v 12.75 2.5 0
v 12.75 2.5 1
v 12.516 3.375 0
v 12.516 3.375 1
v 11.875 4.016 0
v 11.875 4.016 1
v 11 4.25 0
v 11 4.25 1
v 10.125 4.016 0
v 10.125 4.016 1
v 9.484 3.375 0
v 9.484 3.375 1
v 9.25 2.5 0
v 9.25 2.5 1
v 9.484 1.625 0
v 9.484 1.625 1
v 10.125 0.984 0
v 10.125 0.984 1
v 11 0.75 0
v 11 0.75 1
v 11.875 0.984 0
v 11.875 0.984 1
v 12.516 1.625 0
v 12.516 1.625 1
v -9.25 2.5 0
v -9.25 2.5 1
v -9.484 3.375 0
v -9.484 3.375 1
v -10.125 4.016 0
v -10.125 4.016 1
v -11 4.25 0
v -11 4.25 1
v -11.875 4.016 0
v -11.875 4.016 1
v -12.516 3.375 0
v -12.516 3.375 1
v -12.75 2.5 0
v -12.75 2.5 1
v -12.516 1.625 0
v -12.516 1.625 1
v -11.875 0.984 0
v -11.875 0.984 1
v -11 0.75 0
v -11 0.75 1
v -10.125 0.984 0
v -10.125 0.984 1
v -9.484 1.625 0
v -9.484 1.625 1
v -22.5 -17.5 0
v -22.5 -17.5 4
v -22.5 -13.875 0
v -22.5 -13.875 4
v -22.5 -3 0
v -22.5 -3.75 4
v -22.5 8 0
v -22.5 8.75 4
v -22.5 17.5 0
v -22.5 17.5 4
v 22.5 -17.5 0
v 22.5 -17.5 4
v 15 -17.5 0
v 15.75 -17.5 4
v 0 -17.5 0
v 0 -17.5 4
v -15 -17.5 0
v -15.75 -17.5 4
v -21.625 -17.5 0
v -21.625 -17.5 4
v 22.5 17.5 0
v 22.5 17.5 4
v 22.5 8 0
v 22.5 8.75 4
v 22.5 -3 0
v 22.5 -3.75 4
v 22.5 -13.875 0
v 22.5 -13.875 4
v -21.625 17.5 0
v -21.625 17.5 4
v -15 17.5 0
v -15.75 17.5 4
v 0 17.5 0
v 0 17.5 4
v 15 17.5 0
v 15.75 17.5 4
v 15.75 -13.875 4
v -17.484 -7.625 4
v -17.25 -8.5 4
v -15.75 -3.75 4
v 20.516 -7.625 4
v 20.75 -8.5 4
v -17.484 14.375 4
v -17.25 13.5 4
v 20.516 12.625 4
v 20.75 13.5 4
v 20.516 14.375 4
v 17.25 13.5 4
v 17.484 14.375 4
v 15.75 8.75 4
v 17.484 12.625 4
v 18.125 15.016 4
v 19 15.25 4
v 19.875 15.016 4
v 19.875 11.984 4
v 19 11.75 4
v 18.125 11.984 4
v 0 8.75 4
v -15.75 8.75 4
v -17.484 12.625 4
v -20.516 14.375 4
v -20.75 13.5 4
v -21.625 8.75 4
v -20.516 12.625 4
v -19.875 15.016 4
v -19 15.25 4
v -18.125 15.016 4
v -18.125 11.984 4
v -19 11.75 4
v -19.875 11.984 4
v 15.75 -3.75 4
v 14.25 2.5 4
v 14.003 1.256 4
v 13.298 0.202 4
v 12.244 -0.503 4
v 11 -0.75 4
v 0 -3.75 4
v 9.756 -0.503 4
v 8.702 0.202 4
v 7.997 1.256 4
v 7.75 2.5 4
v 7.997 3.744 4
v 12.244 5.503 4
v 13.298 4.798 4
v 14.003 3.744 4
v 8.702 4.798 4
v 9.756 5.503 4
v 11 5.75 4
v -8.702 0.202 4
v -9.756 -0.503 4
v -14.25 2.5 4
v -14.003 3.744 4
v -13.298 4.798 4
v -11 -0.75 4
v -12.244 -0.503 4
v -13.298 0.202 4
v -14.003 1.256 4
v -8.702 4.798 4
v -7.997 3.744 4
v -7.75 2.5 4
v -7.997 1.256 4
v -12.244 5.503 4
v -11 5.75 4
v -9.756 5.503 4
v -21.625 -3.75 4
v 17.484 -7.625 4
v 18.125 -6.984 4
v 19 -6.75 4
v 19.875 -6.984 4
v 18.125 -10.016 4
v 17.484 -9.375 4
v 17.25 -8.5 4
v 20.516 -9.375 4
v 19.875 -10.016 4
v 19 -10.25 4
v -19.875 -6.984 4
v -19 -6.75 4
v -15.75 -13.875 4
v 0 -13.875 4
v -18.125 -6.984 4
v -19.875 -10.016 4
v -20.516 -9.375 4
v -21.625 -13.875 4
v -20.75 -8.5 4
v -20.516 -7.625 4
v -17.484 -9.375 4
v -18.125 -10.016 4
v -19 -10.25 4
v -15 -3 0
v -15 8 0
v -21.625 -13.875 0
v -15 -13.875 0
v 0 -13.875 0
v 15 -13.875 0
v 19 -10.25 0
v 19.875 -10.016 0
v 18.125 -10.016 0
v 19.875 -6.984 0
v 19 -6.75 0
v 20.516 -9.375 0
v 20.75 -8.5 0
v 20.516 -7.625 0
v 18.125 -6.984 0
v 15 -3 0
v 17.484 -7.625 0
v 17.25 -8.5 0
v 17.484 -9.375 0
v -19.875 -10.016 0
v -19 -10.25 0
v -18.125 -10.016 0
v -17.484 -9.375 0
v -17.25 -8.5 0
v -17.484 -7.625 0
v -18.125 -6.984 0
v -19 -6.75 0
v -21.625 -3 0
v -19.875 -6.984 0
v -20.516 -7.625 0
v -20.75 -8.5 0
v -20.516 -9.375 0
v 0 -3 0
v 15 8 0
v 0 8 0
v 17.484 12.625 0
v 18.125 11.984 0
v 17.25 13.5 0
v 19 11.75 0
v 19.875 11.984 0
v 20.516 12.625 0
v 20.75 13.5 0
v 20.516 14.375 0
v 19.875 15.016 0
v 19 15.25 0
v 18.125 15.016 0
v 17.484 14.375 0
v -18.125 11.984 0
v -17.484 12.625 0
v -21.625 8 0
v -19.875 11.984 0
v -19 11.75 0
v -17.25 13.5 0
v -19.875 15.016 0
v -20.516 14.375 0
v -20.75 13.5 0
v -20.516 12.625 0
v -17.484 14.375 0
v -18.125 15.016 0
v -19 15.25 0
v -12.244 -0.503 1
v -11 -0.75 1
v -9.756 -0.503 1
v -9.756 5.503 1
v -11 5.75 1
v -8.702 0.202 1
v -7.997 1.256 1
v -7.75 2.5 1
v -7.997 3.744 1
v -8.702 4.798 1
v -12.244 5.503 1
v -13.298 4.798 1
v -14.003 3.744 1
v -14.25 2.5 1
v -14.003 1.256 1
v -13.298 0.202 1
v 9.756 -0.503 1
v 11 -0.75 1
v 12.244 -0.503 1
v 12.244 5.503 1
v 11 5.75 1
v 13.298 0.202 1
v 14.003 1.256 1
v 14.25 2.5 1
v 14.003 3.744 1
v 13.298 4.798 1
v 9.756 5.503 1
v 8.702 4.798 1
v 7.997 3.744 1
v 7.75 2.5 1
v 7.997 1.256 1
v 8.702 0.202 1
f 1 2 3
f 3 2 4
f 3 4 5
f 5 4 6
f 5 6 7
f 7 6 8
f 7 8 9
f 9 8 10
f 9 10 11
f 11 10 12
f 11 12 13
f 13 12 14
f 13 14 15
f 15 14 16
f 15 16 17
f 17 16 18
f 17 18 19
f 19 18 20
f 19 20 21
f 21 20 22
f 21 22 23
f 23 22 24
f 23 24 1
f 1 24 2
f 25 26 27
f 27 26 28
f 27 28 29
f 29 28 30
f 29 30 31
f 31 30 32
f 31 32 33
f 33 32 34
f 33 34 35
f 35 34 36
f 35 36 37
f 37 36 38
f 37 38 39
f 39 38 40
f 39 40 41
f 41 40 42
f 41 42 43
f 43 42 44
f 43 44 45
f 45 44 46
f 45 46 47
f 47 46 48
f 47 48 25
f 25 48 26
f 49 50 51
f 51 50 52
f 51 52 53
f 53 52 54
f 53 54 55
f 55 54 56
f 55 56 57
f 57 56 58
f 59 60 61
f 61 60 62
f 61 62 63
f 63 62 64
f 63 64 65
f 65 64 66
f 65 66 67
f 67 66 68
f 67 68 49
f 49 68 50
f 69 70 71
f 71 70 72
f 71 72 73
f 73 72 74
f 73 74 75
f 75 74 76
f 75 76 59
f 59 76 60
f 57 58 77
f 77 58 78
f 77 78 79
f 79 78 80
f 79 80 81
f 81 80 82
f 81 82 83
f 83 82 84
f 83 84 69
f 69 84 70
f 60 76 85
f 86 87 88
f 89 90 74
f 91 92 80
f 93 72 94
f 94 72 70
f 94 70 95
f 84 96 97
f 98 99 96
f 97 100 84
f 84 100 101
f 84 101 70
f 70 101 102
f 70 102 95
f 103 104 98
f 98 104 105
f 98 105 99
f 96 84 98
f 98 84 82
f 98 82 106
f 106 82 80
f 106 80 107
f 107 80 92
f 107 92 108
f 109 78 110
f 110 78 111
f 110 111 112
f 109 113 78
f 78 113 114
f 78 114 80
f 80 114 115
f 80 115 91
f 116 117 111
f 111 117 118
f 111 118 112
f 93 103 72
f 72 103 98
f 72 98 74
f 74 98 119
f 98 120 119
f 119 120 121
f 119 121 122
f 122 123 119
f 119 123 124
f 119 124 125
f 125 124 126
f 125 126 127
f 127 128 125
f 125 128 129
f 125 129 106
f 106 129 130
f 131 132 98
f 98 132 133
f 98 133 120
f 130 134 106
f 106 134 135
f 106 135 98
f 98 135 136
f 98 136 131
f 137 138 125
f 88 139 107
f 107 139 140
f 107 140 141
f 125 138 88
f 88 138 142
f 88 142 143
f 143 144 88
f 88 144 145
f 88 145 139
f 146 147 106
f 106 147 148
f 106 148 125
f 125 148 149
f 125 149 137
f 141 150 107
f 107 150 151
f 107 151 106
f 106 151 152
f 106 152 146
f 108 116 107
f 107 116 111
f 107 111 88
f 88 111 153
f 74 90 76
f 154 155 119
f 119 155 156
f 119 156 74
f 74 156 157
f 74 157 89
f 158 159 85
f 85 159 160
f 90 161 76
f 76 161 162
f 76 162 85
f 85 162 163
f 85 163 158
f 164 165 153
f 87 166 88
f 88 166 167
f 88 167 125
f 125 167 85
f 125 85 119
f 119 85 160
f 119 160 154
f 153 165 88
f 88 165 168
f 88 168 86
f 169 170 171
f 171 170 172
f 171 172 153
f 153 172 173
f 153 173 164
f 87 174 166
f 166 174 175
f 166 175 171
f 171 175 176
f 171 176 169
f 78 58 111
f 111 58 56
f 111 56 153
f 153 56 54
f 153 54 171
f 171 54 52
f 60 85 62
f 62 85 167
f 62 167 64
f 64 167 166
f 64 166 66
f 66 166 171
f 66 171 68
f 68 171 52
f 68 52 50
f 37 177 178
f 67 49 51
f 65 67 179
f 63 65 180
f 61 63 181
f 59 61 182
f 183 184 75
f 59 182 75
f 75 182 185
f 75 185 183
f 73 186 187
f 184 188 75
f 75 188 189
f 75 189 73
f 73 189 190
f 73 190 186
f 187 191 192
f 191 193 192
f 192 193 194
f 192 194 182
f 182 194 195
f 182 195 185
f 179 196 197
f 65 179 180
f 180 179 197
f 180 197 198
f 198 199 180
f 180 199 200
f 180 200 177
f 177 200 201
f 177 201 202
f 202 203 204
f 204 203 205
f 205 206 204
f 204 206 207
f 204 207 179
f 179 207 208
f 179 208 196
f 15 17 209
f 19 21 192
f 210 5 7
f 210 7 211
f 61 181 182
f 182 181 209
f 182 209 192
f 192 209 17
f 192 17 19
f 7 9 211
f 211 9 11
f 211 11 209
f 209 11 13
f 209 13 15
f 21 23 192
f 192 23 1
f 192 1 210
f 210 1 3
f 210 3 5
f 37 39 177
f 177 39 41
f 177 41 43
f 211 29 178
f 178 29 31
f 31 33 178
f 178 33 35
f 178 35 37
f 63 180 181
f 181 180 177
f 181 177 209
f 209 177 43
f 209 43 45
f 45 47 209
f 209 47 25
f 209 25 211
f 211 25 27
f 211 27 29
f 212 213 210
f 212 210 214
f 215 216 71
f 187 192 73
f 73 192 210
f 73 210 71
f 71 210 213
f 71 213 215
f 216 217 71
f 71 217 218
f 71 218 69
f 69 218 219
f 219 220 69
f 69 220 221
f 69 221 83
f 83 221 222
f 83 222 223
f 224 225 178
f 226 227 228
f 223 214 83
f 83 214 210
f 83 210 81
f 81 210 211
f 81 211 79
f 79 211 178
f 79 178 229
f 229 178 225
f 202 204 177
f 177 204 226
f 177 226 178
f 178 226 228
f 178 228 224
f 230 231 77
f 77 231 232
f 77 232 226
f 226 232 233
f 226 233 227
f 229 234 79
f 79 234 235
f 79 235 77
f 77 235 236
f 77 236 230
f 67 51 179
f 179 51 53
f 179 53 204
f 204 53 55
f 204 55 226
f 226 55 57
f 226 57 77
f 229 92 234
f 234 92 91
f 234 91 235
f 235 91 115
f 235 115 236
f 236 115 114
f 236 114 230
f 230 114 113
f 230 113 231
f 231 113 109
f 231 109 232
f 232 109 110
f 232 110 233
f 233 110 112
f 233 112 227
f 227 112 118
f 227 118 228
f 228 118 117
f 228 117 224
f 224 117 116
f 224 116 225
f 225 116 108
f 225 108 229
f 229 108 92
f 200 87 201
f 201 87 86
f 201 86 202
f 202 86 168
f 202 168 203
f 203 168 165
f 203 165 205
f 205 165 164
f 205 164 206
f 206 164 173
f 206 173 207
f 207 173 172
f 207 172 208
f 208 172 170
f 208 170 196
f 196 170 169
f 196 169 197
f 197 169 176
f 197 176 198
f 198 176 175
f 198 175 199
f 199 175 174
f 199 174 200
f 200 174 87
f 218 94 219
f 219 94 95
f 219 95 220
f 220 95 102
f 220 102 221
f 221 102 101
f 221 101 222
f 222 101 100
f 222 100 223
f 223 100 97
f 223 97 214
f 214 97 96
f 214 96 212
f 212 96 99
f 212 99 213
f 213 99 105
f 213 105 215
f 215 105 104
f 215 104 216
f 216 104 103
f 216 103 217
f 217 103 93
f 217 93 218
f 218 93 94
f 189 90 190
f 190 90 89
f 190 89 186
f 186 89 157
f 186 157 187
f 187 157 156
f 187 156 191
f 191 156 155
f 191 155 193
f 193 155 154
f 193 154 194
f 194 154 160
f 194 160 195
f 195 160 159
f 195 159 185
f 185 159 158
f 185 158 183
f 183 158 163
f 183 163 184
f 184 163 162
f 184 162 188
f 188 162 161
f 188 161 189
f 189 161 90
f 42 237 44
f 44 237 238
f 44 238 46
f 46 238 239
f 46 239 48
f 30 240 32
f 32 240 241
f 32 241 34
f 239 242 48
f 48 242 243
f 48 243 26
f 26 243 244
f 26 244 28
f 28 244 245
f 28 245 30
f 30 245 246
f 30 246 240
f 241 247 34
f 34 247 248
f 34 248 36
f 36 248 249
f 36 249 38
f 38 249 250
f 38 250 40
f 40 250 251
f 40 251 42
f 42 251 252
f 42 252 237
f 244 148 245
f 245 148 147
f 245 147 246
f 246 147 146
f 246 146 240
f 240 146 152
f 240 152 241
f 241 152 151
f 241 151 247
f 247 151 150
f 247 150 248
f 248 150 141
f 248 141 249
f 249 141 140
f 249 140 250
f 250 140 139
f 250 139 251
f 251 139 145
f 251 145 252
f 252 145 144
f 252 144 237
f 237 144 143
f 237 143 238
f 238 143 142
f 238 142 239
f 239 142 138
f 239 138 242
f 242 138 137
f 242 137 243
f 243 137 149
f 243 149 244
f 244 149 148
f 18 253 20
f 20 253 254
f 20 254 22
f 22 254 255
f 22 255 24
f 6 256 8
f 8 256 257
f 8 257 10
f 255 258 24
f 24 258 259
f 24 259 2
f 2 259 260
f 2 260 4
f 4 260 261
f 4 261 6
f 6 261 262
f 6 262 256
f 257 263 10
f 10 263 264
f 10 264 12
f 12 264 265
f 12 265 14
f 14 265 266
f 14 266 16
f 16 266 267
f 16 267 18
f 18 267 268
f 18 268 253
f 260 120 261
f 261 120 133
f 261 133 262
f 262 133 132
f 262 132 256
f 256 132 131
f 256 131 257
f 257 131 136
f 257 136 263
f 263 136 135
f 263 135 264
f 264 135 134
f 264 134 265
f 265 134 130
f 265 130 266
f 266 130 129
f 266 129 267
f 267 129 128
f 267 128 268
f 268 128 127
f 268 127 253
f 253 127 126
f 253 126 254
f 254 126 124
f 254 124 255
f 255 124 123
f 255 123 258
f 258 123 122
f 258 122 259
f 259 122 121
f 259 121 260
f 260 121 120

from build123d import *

# Parameters (mm, degrees)
SKETCH_1_W          = 45
SKETCH_1_H          = 35
EXTRUDE_1_DEPTH     = 4
SKETCH_2_R          = 1.75
CUT_EXTRUDE_1_DEPTH = 5
SKETCH_3_R          = 3.25
CUT_EXTRUDE_2_DEPTH = 3


with BuildPart() as part:
    # ｽｹｯﾁ1 → ﾎﾞｽ - 押し出し1 (new body)
    with BuildSketch(Plane.XY):
        Rectangle(SKETCH_1_W, SKETCH_1_H)
    extrude(amount=EXTRUDE_1_DEPTH)

    # ｽｹｯﾁ2 → ｶｯﾄ - 押し出し1 (cut, through all)
    with BuildSketch(Plane.XY.offset(4)):
        with Locations((-19, 13.5)):
            Circle(SKETCH_2_R)
        with Locations((-19, -8.5)):
            Circle(SKETCH_2_R)
        with Locations((19, 13.5)):
            Circle(SKETCH_2_R)
        with Locations((19, -8.5)):
            Circle(SKETCH_2_R)
        with Locations((-11, 2.5)):
            Circle(SKETCH_2_R)
        with Locations((11, 2.5)):
            Circle(SKETCH_2_R)
    extrude(amount=-CUT_EXTRUDE_1_DEPTH, mode=Mode.SUBTRACT)

    # ｽｹｯﾁ3 → ｶｯﾄ - 押し出し2 (cut)
    with BuildSketch(Plane.XY.offset(4)):
        with Locations((-11, 2.5)):
            Circle(SKETCH_3_R)
        with Locations((11, 2.5)):
            Circle(SKETCH_3_R)
    extrude(amount=-CUT_EXTRUDE_2_DEPTH, mode=Mode.SUBTRACT)


solid = part.part
